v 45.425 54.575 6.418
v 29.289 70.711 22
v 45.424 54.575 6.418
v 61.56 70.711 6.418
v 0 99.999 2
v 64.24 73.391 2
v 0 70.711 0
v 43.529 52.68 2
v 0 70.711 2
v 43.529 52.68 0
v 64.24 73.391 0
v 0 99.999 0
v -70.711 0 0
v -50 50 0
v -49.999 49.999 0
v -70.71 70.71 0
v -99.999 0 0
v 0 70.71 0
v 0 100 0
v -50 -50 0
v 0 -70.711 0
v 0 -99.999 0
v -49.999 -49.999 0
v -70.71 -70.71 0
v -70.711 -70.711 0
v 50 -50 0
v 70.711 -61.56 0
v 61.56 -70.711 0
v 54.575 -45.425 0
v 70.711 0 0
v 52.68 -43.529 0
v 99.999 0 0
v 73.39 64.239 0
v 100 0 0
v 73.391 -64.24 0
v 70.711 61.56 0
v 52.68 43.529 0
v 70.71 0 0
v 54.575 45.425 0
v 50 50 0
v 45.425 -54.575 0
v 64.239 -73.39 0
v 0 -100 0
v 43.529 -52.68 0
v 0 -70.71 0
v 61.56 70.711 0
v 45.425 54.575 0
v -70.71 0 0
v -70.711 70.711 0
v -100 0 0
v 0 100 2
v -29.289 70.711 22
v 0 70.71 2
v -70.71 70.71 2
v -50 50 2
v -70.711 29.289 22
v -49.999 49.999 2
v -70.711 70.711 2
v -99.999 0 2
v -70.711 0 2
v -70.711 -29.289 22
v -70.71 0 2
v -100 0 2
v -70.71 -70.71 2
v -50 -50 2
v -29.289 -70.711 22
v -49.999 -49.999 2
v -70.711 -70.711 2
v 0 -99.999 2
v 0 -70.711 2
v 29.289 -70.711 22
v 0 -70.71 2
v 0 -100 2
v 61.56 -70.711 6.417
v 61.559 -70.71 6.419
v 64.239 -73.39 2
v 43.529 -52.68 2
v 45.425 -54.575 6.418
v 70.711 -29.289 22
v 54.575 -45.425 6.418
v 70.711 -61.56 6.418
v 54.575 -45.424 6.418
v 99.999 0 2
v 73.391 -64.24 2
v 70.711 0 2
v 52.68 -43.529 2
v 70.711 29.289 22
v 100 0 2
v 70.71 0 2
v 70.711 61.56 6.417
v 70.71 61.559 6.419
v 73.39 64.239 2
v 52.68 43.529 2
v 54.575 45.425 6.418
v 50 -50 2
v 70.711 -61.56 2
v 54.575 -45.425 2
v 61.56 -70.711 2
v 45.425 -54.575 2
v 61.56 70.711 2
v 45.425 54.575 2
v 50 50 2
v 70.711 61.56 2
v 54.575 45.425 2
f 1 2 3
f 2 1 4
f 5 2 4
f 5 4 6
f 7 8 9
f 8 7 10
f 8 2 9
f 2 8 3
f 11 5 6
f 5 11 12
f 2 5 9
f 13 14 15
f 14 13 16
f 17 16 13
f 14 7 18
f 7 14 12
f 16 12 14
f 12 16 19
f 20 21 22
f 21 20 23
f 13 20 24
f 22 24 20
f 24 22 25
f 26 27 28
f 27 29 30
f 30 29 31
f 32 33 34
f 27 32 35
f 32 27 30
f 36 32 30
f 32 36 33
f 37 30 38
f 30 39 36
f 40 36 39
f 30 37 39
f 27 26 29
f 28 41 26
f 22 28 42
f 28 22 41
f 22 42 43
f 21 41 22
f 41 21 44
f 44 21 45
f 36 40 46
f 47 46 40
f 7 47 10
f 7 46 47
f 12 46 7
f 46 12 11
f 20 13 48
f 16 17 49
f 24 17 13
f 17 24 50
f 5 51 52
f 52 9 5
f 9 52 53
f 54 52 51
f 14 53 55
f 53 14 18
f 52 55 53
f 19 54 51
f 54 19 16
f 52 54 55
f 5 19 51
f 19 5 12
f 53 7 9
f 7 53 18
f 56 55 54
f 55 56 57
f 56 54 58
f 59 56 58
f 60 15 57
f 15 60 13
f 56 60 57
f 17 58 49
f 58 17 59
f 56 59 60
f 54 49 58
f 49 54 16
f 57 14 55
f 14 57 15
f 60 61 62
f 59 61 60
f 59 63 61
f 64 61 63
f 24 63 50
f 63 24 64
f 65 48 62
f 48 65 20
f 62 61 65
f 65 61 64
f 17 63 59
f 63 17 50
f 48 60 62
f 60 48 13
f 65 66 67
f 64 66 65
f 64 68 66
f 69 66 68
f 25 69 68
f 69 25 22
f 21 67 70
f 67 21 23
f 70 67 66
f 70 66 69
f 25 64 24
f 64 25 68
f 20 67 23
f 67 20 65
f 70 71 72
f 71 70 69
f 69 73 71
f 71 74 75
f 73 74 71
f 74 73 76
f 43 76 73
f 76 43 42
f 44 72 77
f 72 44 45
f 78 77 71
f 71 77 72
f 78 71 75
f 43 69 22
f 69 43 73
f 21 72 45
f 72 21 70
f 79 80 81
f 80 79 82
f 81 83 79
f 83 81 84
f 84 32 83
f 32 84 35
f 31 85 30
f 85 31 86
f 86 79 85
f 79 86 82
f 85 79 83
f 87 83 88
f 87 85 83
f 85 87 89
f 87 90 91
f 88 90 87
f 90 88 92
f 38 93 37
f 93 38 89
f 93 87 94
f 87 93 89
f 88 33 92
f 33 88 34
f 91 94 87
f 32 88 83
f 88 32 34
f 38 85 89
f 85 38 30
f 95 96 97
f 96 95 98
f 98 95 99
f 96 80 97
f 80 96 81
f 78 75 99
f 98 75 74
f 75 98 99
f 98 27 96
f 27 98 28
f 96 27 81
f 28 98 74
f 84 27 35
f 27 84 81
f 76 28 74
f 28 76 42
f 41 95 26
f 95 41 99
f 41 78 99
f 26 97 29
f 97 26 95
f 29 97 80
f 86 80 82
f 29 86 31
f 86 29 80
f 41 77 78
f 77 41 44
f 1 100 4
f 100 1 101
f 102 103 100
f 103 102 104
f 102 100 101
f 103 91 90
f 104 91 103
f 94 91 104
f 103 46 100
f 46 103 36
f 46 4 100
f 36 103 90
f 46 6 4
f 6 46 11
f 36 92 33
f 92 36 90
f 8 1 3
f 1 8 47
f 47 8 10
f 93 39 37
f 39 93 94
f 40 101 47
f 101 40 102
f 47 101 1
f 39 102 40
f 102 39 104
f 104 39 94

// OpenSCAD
//for(x = [5,10,20,35,55,85,130,200]) {
for(x = [200]) {

width = x;
height = x/10;
bheight = 2;

fudge = 0.001;

//side = big / sin(22.5);
side = width /(sin(22.5) + cos(22.5)) / 2;
big = side * sin(22.5);
cs = 11/170 * 2 * side * (sin(22.5) + cos(22.5));
difference() {
union() {
for(i = [1:1:8]) {
rotate([0,0,i * 45]) translate([side * cos(22.5),0,0]) {
polyhedron(
  points=[
//    [0 - fudge,0,(i==8?height:0)+bheight],
    [0 - fudge,0,bheight],
    [big,0,bheight],
    [0 - fudge,side * cos(22.5),bheight],
//    [-1 * big * cos(45),side * cos(22.5) - big * cos(45),(i==7?0:0)+bheight],
    [-1 * big * cos(45),side * cos(22.5) - big * cos(45),bheight],
    [0,big,height + bheight] , // apex
    // first 4 but lower
    [0 - fudge,0,0], //5
    [big,0,0],
    [0 - fudge,side * cos(22.5),0],
    [-1 * big * cos(45),side * cos(22.5) - big * cos(45),0],
    ],
  faces=[
    [1,0,4],[2,1,4],[3,2,4],[0,3,4], // pyramid top
    [6,1,2,7],// outside face
    [8,3,0,5],// inside face
    [5,6,7,8],// bottom face
    [5,0,1,6],// side
    [7,2,3,8]
    ]
 );
};
};
};
union() {
for(i = [-45 : 90 : 45]) {
rotate([0,0,i]) translate([0,-cs/2,bheight]) cube([big*10,cs,bheight+height]);
rotate([0,0,i]) translate([width/2 - cs / 2,-cs/2,-1]) cube([big*10,cs,bheight+height+2]);
rotate([0,0,i]) translate([0,-cs/2,-1]) cube([width/2 - big,cs,bheight+height+2]);
};
};
};
};
